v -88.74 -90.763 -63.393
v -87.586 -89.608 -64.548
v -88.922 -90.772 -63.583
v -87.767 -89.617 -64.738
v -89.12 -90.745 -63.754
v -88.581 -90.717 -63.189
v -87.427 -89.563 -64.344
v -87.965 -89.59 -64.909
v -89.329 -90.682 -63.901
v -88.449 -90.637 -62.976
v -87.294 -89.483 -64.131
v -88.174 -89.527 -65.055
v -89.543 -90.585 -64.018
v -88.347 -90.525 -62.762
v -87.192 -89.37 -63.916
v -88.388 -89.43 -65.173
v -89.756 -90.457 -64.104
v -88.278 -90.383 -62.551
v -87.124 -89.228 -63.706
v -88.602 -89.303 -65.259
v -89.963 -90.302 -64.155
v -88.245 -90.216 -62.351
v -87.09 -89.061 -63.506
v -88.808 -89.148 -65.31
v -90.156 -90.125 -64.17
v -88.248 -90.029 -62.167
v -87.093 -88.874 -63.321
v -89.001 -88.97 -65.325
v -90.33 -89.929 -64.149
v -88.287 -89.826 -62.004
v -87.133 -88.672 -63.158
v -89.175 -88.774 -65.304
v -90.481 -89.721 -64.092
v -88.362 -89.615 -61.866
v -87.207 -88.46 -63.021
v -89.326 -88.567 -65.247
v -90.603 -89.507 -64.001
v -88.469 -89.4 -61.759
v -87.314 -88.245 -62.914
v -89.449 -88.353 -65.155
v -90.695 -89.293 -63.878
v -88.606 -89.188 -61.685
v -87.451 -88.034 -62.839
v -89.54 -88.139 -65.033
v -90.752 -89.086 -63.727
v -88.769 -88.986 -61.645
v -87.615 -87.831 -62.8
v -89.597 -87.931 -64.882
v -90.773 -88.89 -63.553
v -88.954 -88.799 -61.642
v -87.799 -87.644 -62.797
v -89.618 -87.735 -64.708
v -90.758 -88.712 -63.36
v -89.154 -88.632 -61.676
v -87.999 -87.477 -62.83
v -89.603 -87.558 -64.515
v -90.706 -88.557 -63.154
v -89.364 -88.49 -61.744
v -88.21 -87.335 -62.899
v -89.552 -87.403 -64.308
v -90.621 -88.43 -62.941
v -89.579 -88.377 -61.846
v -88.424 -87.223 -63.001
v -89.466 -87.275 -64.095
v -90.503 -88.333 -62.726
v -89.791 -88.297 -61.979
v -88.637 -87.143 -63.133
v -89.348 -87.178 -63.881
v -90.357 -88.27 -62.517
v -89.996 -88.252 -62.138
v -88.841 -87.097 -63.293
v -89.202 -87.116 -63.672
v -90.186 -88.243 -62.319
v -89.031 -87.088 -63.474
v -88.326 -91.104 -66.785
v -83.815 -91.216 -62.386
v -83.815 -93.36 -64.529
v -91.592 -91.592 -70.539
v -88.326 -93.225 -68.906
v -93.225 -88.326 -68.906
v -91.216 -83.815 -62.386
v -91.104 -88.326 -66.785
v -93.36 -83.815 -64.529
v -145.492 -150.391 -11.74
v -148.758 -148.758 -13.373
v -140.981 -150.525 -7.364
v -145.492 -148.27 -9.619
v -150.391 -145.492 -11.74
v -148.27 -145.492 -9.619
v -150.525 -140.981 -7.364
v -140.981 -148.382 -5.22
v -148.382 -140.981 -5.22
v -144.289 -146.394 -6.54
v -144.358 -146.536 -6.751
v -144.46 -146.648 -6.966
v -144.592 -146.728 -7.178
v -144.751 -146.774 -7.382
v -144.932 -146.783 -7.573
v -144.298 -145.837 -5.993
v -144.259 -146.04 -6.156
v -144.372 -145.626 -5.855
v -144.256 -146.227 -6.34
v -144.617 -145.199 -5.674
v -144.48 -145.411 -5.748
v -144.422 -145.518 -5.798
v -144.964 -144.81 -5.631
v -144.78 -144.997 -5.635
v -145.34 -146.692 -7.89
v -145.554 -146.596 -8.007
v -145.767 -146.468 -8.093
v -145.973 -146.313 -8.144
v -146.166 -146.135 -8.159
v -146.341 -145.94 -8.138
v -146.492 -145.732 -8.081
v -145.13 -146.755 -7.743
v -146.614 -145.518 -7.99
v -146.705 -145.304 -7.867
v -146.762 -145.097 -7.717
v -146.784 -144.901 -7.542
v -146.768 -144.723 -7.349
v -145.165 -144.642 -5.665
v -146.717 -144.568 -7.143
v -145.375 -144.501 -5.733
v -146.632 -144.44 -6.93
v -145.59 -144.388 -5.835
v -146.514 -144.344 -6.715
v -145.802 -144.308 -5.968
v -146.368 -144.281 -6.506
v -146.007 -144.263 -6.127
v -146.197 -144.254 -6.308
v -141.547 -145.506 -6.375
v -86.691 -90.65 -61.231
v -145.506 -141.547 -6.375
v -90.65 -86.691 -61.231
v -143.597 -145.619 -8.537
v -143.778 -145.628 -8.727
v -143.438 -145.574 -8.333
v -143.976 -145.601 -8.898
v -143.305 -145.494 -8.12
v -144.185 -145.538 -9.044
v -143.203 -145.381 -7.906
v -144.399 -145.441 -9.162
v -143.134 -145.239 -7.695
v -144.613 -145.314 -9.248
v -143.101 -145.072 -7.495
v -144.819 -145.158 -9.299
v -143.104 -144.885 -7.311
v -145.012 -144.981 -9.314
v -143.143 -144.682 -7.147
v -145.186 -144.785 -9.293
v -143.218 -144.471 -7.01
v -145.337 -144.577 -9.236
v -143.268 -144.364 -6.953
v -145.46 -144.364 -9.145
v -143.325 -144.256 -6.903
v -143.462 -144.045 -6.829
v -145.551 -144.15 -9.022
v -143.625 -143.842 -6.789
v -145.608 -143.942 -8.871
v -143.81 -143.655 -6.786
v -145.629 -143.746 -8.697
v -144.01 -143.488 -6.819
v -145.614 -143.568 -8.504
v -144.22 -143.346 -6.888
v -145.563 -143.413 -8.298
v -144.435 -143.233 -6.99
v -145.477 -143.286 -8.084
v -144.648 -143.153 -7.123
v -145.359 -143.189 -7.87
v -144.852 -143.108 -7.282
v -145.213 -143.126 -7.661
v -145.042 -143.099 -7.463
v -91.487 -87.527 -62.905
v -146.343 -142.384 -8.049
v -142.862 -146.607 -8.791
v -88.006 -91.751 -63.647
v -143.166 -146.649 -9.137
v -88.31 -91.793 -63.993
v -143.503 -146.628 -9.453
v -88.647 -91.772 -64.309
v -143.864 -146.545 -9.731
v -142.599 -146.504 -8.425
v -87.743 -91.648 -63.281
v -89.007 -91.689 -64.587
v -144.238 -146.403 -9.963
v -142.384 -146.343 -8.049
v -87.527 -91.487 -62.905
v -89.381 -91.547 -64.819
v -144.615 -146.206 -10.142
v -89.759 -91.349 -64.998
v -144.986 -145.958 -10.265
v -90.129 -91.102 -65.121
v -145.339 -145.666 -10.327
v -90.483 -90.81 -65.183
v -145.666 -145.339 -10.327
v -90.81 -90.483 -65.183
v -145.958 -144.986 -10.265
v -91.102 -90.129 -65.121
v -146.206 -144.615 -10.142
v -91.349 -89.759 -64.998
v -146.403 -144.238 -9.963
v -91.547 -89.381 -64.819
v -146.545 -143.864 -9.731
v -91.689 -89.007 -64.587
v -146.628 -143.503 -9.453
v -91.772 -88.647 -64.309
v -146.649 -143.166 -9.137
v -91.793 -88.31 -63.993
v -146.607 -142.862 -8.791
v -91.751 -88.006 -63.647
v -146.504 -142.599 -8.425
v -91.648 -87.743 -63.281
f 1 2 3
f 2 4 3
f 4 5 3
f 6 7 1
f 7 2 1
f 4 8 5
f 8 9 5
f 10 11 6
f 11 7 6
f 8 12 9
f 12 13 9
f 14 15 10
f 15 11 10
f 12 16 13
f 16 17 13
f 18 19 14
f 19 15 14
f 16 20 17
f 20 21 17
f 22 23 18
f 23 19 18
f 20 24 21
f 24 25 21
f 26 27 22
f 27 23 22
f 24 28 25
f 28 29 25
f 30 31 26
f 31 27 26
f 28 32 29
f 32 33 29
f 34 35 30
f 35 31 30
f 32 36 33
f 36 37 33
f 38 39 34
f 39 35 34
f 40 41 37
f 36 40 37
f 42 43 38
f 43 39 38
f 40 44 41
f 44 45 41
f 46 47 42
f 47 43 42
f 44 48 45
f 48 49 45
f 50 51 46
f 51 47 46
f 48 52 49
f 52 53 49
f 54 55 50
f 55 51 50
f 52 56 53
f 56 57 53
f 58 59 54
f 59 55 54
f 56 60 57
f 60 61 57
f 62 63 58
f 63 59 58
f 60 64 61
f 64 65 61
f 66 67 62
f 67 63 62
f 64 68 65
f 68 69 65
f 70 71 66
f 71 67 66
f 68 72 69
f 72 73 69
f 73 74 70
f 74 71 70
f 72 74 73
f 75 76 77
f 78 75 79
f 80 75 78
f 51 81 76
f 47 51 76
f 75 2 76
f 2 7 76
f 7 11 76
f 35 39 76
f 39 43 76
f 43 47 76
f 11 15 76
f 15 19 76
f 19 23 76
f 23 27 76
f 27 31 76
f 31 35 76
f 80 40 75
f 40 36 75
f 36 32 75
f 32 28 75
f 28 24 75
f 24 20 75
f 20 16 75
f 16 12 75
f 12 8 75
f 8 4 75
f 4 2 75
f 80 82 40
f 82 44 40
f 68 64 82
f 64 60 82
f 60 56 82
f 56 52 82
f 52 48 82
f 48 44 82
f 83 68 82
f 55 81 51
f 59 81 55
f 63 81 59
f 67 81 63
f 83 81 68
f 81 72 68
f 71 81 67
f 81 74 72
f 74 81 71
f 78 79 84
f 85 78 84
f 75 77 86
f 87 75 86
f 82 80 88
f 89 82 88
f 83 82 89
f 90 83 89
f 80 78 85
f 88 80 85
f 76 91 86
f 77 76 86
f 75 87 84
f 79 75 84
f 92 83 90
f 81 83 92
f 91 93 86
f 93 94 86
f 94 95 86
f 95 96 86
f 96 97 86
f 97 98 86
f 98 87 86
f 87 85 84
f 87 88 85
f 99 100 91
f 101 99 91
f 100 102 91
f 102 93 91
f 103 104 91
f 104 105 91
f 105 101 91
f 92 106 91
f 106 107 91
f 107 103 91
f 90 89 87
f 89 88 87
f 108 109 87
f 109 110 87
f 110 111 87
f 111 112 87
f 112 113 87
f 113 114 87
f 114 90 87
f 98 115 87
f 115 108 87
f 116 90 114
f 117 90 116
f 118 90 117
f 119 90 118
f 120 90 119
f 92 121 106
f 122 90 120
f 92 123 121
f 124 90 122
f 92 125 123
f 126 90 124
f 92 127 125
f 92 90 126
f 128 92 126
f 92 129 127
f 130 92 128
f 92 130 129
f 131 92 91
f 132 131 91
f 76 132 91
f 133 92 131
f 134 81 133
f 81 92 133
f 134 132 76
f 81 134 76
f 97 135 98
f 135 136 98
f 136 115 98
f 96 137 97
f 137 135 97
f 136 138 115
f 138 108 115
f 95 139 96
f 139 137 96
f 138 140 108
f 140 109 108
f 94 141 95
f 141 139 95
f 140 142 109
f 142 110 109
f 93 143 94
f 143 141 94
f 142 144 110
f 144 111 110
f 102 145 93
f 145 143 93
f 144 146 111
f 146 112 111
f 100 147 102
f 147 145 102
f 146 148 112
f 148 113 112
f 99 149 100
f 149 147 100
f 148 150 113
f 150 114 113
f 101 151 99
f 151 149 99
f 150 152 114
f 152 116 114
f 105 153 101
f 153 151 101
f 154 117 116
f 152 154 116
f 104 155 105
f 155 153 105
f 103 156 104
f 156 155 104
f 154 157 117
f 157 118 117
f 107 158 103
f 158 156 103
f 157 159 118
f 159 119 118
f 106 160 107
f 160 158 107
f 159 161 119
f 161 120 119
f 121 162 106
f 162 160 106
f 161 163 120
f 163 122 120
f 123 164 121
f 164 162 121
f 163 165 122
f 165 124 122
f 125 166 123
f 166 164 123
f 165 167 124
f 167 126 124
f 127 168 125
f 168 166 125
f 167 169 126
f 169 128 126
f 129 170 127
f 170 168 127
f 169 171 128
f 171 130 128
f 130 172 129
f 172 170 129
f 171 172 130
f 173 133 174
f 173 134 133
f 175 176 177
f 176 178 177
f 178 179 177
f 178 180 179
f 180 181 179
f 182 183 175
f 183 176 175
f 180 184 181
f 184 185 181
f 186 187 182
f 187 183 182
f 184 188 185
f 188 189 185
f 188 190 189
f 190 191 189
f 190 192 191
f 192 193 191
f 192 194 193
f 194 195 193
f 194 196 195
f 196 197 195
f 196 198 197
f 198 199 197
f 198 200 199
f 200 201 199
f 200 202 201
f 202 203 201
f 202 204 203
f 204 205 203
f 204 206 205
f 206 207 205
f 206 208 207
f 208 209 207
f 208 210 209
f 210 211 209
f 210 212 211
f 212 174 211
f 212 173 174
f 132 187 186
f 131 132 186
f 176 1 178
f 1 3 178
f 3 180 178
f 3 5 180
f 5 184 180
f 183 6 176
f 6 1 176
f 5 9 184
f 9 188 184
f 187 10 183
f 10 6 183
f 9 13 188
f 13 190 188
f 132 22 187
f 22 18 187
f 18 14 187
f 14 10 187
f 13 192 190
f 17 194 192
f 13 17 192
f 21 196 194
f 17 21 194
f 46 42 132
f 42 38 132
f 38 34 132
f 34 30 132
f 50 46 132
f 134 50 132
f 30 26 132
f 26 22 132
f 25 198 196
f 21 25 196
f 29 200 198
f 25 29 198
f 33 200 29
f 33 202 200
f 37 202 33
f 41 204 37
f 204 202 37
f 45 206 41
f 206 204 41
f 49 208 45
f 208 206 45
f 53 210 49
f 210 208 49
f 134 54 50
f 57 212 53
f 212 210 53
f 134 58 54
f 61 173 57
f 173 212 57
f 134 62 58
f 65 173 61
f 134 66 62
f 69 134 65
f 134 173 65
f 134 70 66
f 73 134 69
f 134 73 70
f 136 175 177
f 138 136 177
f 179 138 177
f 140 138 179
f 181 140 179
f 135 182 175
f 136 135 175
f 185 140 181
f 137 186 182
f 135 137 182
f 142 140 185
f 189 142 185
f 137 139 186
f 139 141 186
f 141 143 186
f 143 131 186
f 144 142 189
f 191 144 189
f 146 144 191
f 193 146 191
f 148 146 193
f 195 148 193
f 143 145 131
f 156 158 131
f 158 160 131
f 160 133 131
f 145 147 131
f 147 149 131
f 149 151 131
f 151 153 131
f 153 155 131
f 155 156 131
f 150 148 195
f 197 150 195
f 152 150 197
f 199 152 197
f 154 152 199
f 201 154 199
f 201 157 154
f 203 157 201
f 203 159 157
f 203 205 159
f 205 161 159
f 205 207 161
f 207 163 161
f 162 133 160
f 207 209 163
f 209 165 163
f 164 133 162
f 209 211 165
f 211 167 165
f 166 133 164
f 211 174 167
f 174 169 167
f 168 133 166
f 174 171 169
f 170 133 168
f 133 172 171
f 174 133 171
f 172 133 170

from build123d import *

# Parameters (mm, degrees)
STOCK_PFRD_START               = -164.049705188
STOCK_PFRD_JOINER_BASE_1_DEPTH = 99.013547962
BOSS_EXTRUDE1_DEPTH            = 99.013547962
CUT_EXTRUDE1_DEPTH             = 193.899706011
CUT_EXTRUDE1_DEPTH_BACK        = 193.899706011
SKETCH2_R                      = 1.55
CUT_EXTRUDE2_START             = -2
SKETCH2_3_R                    = 1.55
CUT_EXTRUDE2_DEPTH             = 95.013547962


# Read off the part's stored shape, not the designer's step: Stock-PFRD - Joiner Base-1
with BuildPart() as part:
    # Stock-PFRD - Joiner Base-1 outline → Stock-PFRD - Joiner Base-1 (new body)
    with BuildSketch(Plane(origin=(0, 0, 0), x_dir=(0.8164965809277251, -0.4082482904638628, 0.4082482904638649), z_dir=(0.5773502691896268, 0.5773502691896238, -0.5773502691896268)).offset(STOCK_PFRD_START)):
        Polygon((-62.189823503, 111.644137252), (-62.189823503, 114.644137252), (-66.189823503, 114.644137252), (-68.189823503, 111.180035637), (-65.591747292, 109.680035637), (-68.354247292, 104.895245281), (-67.382105967, 104.333979225), (-63.809678479, 110.521605141), (-56.664823503, 110.521605141), (-56.664823503, 111.644137252), align=None)
    extrude(amount=STOCK_PFRD_JOINER_BASE_1_DEPTH)

    # Sketch1 → Boss-Extrude1 (add)
    with BuildSketch(Plane(origin=(-37.548642882, -37.548642882, 37.548642882), x_dir=(-0.4082482904638644, -0.40824829046386246, -0.8164965809277256), z_dir=(0.5773502691896268, 0.5773502691896242, -0.5773502691896264))):
        Polygon((124.046929471, 6.187625915), (122.393930478, 5.233266502), (122.393930478, -5.233266502), (124.046929471, -6.187625915), (126.031643718, -2.75), (127.619356958, 0), (126.031643718, 2.75), align=None)
    extrude(amount=-BOSS_EXTRUDE1_DEPTH)

    # Sketch2 → Cut-Extrude1 (cut, two sides: drawn at the far end of the back side and taken through both)
    with BuildSketch(Plane(origin=(-37.548642882, -37.548642882, 37.548642882), x_dir=(-0.4082482904638644, -0.40824829046386246, -0.8164965809277256), z_dir=(0.5773502691896268, 0.5773502691896242, -0.5773502691896264)).offset(-CUT_EXTRUDE1_DEPTH_BACK)):
        with Locations(Location((124.443930478, 0, 0), (0, 0, 30))):
            Circle(SKETCH2_R)
    extrude(amount=CUT_EXTRUDE1_DEPTH + CUT_EXTRUDE1_DEPTH_BACK, mode=Mode.SUBTRACT)

    # Sketch2<3> → Cut-Extrude2 (cut)
    with BuildSketch(Plane(origin=(-37.548642882, -37.548642882, 37.548642882), x_dir=(-0.4082482904638644, -0.40824829046386246, -0.8164965809277256), z_dir=(0.5773502691896268, 0.5773502691896242, -0.5773502691896264)).offset(CUT_EXTRUDE2_START)):
        with BuildLine():
            Line((122.393930478, 2.799999988), (124.443930478, 2.799999988))
            ThreePointArc((124.443930478, 2.799999988), (127.243930466, 0), (124.443930478, -2.799999988))
            Line((124.443930478, -2.799999988), (122.393930478, -2.799999988))
            ThreePointArc((122.393930478, -2.799999988), (119.59393049, 0), (122.393930478, 2.799999988))
        make_face()
        with Locations(Location((124.443930478, 0, 0), (0, 0, 30))):
            Circle(SKETCH2_3_R, mode=Mode.SUBTRACT)
    extrude(amount=-CUT_EXTRUDE2_DEPTH, mode=Mode.SUBTRACT)


solid = part.part
